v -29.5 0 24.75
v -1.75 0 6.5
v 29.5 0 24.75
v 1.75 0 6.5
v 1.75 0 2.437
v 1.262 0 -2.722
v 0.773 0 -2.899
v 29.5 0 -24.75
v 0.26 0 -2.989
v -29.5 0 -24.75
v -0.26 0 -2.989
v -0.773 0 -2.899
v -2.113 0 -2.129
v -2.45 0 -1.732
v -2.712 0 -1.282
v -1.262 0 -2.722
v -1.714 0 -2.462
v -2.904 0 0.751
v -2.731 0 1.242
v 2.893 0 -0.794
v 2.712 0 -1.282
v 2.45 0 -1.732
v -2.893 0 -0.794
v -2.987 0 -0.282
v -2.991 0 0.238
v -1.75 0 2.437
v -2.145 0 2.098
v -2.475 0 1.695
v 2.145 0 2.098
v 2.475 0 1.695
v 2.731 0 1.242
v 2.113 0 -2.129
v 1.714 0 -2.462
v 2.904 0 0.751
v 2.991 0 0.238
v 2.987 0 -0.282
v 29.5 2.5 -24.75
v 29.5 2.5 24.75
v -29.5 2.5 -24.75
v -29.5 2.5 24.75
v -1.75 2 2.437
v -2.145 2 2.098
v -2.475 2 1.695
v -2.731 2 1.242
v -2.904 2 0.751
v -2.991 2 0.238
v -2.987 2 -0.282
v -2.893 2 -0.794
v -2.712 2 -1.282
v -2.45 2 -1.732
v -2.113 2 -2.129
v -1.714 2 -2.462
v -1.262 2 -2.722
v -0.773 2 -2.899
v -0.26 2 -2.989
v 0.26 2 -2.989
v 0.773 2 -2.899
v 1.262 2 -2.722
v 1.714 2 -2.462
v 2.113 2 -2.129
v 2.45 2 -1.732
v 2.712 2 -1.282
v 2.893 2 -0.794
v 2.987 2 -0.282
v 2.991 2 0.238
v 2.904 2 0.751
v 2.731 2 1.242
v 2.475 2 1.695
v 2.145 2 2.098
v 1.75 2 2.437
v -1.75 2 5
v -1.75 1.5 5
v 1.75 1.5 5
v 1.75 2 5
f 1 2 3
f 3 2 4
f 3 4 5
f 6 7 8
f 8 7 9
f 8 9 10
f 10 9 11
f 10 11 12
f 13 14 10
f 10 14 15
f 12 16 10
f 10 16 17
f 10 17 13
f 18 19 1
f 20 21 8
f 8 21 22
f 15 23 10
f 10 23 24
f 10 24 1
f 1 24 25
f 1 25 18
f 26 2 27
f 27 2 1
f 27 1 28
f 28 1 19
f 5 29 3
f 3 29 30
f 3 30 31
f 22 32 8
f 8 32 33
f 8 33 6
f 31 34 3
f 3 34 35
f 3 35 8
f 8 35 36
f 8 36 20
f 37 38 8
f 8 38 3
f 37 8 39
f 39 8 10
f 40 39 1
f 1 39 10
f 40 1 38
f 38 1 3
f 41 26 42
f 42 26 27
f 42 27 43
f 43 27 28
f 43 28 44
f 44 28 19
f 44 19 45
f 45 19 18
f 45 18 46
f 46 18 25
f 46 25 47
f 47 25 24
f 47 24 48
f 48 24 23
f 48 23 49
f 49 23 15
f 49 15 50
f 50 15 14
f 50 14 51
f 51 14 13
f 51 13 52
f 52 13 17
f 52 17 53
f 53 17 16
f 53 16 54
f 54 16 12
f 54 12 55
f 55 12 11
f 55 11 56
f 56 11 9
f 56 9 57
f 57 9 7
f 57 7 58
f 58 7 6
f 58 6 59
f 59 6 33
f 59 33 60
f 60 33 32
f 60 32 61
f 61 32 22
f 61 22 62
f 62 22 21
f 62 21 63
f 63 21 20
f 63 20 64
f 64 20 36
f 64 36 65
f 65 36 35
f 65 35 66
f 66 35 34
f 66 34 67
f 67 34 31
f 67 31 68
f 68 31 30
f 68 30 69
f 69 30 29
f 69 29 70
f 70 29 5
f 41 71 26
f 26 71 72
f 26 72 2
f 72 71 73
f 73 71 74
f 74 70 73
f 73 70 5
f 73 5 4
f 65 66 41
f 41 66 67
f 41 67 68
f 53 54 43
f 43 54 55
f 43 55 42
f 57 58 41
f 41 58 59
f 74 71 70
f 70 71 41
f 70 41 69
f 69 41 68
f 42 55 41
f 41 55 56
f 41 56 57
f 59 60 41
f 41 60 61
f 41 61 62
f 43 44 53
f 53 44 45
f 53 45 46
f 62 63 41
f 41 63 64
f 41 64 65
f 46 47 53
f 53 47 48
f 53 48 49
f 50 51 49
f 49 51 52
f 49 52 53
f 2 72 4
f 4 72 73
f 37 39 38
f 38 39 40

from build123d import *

# Parameters (mm, degrees)
SKETCH1_W           = 59
SKETCH1_H           = 49.5
SKETCH1_R           = 3
BOSS_EXTRUDE1_DEPTH = 1.5
BOSS_EXTRUDE2_DEPTH = 49.5
CUT_EXTRUDE1_DEPTH  = 2
CUT_EXTRUDE3_DEPTH  = 65.105869466
CHAMFER3_SIZE       = 1.5
SKETCH7_W           = 59
SKETCH7_H           = 2.086537977
CUT_EXTRUDE5_DEPTH  = 58.762444547


with BuildPart() as part:
    # Sketch1 → Boss-Extrude1 (new body)
    with BuildSketch(Plane(origin=(0, 0, 0), x_dir=(1, 0, 0), z_dir=(0, 1, 0))):
        Rectangle(SKETCH1_W, SKETCH1_H)
        with Locations(Location((0, 0, 0), (0, 0, 270))):
            Circle(SKETCH1_R, mode=Mode.SUBTRACT)
    extrude(amount=BOSS_EXTRUDE1_DEPTH)

    # Sketch2 → Boss-Extrude2 (add)
    with BuildSketch(Plane(origin=(0, 0, -24.75), x_dir=(-1, 0, 0), z_dir=(0, 0, -1))):
        Polygon((-29.5, 1.5), (29.5, 1.5), (29.5, 2.5), (28.32, 4), (27.14, 2.5), (25.96, 4), (24.78, 2.5), (23.6, 4), (22.42, 2.5), (21.24, 4), (20.06, 2.5), (18.88, 4), (17.7, 2.5), (16.52, 4), (15.34, 2.5), (14.16, 4), (12.98, 2.5), (11.8, 4), (10.62, 2.5), (9.44, 4), (8.26, 2.5), (7.08, 4), (5.9, 2.5), (4.72, 4), (3.54, 2.5), (2.36, 4), (1.18, 2.5), (0, 4), (-1.18, 2.5), (-2.36, 4), (-3.54, 2.5), (-4.72, 4), (-5.9, 2.5), (-7.08, 4), (-8.26, 2.5), (-9.44, 4), (-10.62, 2.5), (-11.8, 4), (-12.98, 2.5), (-14.16, 4), (-15.34, 2.5), (-16.52, 4), (-17.7, 2.5), (-18.88, 4), (-20.06, 2.5), (-21.24, 4), (-22.42, 2.5), (-23.6, 4), (-24.78, 2.5), (-25.96, 4), (-27.14, 2.5), (-28.32, 4), (-29.5, 2.5), align=None)
    extrude(amount=-BOSS_EXTRUDE2_DEPTH)

    # Sketch3 → Cut-Extrude1 (cut)
    with BuildSketch(Plane(origin=(0, 0, 0), x_dir=(-1, 0, 0), z_dir=(0, -1, 0))):
        with BuildLine():
            Line((-1.75, -2.436698586), (-1.75, -5))
            Line((-1.75, -5), (1.75, -5))
            Line((1.75, -5), (1.75, -2.436698586))
            ThreePointArc((1.75, -2.436698586), (0, 3), (-1.75, -2.436698586))
        make_face()
    extrude(amount=-CUT_EXTRUDE1_DEPTH, mode=Mode.SUBTRACT)

    # Sketch4 → Cut-Extrude3 (cut, through all)
    with BuildSketch(Plane(origin=(29.5, 0, 0), x_dir=(0, 0, -1), z_dir=(1, 0, 0))):
        with BuildLine():
            Line((-24, 4), (-24.75, 4))
            Line((-24.75, 4), (-24.75, 3.25))
            ThreePointArc((-24.75, 3.25), (-24.530330086, 3.780330086), (-24, 4))
        make_face()
    cut_extrude3 = extrude(amount=-CUT_EXTRUDE3_DEPTH, mode=Mode.SUBTRACT)

    # Mirror1: Cut-Extrude3 across plane
    add(cut_extrude3.mirror(Plane.XY), mode=Mode.SUBTRACT)

    # Chamfer3
    chamfer3_edges = [part.edges().sort_by_distance(p)[0] for p in [
        (0, 0, 5),
    ]]
    chamfer(chamfer3_edges, length=CHAMFER3_SIZE)

    # Sketch7 → Cut-Extrude5 (cut, through all)
    with BuildSketch(Plane.XY.offset(24.75)):
        with Locations((0, 3.543268988)):
            Rectangle(SKETCH7_W, SKETCH7_H)
    extrude(amount=-CUT_EXTRUDE5_DEPTH, mode=Mode.SUBTRACT)


solid = part.part
